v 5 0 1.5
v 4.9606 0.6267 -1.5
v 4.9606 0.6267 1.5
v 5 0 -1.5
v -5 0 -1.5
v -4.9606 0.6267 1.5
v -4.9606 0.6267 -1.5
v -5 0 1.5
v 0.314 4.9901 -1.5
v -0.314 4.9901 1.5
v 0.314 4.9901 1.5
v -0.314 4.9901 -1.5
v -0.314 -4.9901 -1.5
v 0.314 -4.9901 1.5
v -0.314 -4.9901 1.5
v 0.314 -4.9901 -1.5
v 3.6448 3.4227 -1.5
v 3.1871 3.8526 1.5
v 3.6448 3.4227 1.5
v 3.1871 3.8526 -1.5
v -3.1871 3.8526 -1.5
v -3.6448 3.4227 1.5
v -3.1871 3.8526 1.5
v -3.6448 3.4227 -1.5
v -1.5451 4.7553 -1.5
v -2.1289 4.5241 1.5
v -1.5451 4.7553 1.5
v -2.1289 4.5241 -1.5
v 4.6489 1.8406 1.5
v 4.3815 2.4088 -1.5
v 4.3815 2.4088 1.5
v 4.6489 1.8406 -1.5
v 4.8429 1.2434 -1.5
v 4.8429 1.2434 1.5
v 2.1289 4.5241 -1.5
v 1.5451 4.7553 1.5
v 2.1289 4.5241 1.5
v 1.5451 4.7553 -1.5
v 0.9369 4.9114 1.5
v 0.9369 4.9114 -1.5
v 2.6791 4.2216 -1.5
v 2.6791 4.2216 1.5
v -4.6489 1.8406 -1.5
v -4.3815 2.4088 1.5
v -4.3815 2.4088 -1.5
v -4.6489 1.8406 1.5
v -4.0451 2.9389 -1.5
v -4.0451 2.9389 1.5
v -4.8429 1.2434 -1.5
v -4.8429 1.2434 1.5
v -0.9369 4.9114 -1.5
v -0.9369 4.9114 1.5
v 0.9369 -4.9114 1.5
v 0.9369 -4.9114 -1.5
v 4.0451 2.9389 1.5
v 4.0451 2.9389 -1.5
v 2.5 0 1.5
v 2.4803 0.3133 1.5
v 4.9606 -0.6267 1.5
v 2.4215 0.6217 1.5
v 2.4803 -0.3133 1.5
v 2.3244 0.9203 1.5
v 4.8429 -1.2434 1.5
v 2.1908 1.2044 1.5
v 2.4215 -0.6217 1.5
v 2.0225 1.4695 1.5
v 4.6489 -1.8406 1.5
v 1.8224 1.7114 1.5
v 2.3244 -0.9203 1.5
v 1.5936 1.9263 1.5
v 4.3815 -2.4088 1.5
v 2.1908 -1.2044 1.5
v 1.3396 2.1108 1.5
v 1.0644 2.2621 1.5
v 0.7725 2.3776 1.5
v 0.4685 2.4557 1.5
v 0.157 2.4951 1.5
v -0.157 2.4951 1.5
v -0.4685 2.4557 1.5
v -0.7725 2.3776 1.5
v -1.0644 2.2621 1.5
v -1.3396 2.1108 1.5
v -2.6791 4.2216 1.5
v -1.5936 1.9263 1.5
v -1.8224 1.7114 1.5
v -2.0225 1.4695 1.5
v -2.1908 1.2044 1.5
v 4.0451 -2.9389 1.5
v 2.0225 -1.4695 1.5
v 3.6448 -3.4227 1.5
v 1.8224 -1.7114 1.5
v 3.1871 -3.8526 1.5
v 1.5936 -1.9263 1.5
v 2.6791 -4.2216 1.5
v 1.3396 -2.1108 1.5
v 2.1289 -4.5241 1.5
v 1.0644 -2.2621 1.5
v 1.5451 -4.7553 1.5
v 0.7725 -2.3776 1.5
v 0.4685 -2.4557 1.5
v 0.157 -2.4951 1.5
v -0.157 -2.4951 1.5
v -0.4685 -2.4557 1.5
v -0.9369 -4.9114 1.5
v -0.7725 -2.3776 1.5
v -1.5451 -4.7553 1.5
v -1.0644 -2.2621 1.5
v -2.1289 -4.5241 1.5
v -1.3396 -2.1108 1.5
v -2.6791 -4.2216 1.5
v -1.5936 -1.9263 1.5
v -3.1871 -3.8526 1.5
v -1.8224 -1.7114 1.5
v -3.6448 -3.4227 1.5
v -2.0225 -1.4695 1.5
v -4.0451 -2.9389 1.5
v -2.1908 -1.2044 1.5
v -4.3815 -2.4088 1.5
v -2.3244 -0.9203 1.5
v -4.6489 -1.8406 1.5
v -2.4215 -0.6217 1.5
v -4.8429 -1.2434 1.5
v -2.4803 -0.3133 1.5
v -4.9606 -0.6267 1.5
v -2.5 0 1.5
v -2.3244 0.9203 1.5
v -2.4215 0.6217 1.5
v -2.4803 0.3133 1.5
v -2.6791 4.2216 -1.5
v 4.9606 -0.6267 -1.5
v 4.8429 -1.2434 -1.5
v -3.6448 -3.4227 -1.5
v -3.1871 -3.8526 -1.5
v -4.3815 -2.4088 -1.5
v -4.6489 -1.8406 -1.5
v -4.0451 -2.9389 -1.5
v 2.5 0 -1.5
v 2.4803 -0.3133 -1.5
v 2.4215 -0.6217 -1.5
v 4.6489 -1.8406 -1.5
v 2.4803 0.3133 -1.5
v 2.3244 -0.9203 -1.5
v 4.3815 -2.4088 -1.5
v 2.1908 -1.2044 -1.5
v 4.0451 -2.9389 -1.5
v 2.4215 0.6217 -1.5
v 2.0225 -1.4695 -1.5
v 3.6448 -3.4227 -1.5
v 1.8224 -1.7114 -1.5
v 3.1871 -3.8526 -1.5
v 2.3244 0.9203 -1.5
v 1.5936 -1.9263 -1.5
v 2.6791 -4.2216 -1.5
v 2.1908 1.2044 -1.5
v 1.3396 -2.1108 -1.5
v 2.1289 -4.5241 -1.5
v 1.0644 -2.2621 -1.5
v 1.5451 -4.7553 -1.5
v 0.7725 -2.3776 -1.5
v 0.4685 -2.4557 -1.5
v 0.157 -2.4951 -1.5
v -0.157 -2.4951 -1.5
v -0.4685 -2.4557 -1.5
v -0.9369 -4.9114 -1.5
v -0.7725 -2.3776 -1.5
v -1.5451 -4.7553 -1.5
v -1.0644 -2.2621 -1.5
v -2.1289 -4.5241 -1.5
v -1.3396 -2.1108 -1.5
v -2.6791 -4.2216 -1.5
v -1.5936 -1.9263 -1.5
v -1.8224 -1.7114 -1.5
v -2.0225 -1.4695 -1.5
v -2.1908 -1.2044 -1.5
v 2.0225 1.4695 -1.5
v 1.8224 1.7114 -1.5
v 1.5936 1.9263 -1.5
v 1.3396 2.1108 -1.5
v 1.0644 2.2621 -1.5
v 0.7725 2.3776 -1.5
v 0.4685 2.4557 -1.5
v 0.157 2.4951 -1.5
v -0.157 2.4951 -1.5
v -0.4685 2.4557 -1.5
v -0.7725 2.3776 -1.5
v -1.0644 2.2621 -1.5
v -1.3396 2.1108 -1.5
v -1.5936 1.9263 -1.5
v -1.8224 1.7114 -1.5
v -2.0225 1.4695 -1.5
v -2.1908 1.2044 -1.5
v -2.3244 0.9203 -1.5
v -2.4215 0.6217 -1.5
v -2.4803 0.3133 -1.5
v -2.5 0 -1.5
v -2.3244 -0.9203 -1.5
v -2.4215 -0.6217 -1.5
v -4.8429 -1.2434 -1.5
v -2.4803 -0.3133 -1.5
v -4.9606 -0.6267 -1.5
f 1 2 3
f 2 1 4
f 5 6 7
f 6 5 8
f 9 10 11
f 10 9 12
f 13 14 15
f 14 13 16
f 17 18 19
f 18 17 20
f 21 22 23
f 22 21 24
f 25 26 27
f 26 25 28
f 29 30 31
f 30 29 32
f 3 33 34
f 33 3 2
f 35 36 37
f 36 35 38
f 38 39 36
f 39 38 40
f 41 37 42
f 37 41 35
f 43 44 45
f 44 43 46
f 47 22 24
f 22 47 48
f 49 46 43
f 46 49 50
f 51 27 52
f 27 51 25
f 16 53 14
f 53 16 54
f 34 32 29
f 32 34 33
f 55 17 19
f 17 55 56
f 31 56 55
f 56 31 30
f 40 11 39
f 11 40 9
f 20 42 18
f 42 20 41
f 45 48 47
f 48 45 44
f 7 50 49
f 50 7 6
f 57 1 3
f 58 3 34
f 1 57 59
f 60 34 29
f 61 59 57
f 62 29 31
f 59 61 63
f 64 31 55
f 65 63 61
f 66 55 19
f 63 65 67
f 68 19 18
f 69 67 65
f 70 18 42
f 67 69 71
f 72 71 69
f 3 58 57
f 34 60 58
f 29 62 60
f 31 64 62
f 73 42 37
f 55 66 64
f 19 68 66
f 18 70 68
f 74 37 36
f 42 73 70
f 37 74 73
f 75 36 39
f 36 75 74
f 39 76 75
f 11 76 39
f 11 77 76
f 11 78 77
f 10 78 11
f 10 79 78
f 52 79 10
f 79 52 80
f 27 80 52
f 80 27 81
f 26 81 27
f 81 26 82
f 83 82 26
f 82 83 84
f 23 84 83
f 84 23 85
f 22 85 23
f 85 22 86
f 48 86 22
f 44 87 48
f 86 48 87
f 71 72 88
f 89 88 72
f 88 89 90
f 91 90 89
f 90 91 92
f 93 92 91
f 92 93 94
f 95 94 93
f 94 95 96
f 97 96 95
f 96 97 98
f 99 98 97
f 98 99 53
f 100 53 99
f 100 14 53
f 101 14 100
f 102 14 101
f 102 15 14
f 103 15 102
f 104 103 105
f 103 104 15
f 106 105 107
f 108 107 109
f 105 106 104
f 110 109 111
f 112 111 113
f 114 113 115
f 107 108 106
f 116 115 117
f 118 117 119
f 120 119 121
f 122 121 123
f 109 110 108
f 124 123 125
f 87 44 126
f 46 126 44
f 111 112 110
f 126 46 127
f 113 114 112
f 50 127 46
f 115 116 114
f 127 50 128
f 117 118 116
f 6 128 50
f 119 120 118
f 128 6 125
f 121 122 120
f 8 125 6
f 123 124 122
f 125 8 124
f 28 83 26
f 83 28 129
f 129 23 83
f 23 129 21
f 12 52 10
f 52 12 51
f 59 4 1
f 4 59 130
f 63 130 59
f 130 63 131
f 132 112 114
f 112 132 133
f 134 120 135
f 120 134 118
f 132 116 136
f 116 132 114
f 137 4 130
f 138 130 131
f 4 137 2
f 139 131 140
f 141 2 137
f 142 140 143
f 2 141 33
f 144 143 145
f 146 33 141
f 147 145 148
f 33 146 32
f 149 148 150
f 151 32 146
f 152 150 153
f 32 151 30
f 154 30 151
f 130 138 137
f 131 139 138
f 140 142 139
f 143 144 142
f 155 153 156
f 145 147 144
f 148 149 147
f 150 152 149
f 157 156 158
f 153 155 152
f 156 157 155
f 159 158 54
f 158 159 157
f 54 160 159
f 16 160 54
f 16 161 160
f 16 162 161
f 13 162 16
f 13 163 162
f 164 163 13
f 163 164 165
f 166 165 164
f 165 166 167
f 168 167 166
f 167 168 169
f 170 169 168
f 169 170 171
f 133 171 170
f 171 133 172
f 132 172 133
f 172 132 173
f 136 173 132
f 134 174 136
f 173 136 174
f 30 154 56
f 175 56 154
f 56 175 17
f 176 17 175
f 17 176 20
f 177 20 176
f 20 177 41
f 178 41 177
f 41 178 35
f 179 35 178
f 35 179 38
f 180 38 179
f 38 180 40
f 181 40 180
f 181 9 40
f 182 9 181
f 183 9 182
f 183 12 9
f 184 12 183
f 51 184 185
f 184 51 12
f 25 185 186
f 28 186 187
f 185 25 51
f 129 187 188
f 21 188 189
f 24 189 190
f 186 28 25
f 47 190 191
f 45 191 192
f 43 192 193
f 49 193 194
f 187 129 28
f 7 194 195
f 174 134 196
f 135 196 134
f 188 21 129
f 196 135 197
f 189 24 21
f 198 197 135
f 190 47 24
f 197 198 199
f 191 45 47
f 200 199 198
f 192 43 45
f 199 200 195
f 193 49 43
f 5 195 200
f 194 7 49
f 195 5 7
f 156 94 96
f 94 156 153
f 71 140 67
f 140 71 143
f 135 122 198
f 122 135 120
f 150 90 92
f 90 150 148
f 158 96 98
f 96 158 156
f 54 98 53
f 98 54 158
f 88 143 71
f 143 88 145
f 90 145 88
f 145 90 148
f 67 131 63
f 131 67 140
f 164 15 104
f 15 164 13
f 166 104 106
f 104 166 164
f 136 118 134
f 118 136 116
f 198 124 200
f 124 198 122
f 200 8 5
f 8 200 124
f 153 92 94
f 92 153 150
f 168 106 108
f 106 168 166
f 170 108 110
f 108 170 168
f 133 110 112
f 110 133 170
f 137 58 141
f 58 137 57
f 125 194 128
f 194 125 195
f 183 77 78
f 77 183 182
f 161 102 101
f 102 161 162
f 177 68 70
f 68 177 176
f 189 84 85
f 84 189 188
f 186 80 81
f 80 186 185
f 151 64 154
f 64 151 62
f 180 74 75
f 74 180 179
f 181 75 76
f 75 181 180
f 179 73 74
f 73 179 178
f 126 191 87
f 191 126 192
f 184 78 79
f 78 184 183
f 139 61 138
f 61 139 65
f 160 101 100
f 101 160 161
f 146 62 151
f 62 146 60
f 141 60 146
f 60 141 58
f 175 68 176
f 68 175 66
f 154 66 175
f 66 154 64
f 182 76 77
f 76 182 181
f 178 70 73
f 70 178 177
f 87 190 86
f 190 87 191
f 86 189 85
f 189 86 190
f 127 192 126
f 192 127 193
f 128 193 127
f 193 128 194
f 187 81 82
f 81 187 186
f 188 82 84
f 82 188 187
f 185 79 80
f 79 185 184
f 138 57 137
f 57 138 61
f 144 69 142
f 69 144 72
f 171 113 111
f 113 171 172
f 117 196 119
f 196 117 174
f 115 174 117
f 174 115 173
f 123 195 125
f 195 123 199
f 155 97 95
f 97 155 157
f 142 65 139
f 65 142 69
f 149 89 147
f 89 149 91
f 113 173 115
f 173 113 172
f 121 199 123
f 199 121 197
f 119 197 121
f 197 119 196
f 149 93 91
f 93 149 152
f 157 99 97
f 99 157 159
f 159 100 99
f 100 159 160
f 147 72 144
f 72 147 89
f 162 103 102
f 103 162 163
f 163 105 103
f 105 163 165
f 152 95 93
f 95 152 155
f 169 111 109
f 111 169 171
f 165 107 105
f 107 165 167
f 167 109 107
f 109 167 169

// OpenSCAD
$fn = 50;


difference() {
	union() {
		translate(v = [0, 0, -1.5000000000]) {
			cylinder(h = 3, r = 5.0000000000);
		}
	}
	union() {
		translate(v = [0, 0, -100.0000000000]) {
			cylinder(h = 200, r = 2.5000000000);
		}
	}
}
